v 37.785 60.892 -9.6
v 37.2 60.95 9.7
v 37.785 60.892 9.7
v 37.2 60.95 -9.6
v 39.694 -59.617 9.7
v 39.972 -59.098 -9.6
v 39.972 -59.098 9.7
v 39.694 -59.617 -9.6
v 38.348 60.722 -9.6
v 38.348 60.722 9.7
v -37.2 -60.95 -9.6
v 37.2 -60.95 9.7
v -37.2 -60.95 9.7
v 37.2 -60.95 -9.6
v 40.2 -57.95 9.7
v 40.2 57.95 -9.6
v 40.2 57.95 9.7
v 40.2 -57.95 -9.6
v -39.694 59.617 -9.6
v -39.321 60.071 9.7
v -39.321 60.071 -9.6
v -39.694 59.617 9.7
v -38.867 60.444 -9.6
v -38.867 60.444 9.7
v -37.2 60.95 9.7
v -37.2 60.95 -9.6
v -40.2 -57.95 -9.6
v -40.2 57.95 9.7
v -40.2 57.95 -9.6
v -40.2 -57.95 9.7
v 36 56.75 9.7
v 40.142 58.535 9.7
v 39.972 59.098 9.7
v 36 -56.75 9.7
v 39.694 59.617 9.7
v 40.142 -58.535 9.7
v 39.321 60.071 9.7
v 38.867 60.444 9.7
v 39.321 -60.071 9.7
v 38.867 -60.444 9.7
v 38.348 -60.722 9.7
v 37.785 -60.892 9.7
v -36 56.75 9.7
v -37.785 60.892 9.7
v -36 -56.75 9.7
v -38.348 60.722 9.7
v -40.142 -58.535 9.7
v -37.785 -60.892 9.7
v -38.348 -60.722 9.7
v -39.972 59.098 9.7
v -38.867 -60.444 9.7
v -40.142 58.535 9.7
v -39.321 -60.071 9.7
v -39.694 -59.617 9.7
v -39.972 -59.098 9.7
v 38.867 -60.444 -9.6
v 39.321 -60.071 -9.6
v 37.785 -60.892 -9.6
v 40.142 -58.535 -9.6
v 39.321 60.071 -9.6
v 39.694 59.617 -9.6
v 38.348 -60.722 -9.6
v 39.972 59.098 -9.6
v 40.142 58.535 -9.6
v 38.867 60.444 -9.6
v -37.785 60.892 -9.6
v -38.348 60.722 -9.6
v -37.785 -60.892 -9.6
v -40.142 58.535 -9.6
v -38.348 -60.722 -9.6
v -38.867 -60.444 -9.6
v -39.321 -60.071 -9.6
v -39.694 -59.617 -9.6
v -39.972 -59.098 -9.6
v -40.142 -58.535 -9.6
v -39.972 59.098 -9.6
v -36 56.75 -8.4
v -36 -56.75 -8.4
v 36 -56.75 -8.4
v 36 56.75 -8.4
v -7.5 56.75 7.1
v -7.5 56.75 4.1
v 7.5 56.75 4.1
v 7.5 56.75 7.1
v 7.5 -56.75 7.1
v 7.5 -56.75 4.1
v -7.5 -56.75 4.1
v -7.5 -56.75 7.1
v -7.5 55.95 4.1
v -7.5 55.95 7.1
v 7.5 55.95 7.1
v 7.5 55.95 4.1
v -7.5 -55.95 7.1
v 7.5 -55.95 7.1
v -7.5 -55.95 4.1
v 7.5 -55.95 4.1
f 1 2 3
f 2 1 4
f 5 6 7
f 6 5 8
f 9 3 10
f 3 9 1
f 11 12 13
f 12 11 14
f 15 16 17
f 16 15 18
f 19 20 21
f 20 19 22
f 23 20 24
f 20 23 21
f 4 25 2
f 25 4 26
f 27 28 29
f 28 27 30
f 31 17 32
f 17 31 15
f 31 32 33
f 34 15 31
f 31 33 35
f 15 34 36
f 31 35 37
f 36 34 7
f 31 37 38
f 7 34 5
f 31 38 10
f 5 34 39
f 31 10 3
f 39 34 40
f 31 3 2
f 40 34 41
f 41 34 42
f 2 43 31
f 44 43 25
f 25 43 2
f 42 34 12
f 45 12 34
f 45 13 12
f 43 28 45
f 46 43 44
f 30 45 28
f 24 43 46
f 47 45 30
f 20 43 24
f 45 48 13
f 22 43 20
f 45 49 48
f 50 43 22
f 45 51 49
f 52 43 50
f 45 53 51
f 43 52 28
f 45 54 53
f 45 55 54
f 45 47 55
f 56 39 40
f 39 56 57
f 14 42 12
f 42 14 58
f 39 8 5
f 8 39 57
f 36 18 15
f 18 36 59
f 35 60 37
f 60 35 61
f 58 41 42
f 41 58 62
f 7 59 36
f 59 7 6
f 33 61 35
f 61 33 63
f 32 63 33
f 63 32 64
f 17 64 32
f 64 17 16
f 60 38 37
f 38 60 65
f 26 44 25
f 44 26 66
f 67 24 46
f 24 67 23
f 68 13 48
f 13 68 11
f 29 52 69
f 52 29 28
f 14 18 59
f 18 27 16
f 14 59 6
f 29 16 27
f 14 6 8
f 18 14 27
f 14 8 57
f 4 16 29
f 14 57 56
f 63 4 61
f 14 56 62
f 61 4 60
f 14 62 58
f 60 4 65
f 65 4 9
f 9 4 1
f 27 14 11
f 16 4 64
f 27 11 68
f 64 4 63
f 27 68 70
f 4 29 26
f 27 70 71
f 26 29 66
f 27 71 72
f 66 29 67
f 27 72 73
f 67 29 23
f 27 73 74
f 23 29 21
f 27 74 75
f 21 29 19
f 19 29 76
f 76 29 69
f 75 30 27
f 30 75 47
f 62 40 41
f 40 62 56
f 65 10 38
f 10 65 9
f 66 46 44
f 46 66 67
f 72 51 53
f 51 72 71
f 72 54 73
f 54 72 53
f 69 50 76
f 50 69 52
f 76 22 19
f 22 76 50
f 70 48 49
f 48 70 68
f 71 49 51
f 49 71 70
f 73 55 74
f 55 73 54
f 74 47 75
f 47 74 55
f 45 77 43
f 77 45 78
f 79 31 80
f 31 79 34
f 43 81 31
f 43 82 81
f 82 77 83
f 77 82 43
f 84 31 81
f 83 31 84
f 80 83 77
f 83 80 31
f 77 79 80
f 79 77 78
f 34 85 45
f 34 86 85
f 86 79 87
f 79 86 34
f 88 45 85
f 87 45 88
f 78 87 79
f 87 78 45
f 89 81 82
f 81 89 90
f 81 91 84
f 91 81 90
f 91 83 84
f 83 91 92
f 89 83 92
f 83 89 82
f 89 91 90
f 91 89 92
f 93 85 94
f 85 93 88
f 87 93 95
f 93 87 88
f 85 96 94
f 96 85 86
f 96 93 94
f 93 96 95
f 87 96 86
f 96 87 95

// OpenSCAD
// Feral Cat Snap-On Blanking Cover (Deep Version)
int_width = 72;   
int_height = 113.5; 
int_depth = 18; // <--- ADJUST THIS for internal room
wall = 1.2;     // <--- ADJUST THIS for wall thickness

width = int_width + (wall * 2);
height = int_height + (wall * 2);
depth = int_depth + wall;

overlap = 0.1; // Ensures a clean cut

difference() {
    // Outer Shell
    minkowski() {
        cube([width, height, depth], center=true);
        cylinder(r=3, h=0.1, $fn=32); 
    }

    // Hollow out the interior
    // We shift it up so the "floor" stays at the bottom
    translate([0, 0, wall/2 + overlap/2]) 
        cube([int_width, int_height, int_depth + overlap], center=true);
}

// Internal Snap Tabs
module snap_tab() {
    // Positioned relative to the NEW depth
    translate([0, (height/2) - 1, (depth/2) - 4])
        cube([15, 2, 3], center=true);
}

snap_tab(); 
rotate([0,0,180]) snap_tab();
